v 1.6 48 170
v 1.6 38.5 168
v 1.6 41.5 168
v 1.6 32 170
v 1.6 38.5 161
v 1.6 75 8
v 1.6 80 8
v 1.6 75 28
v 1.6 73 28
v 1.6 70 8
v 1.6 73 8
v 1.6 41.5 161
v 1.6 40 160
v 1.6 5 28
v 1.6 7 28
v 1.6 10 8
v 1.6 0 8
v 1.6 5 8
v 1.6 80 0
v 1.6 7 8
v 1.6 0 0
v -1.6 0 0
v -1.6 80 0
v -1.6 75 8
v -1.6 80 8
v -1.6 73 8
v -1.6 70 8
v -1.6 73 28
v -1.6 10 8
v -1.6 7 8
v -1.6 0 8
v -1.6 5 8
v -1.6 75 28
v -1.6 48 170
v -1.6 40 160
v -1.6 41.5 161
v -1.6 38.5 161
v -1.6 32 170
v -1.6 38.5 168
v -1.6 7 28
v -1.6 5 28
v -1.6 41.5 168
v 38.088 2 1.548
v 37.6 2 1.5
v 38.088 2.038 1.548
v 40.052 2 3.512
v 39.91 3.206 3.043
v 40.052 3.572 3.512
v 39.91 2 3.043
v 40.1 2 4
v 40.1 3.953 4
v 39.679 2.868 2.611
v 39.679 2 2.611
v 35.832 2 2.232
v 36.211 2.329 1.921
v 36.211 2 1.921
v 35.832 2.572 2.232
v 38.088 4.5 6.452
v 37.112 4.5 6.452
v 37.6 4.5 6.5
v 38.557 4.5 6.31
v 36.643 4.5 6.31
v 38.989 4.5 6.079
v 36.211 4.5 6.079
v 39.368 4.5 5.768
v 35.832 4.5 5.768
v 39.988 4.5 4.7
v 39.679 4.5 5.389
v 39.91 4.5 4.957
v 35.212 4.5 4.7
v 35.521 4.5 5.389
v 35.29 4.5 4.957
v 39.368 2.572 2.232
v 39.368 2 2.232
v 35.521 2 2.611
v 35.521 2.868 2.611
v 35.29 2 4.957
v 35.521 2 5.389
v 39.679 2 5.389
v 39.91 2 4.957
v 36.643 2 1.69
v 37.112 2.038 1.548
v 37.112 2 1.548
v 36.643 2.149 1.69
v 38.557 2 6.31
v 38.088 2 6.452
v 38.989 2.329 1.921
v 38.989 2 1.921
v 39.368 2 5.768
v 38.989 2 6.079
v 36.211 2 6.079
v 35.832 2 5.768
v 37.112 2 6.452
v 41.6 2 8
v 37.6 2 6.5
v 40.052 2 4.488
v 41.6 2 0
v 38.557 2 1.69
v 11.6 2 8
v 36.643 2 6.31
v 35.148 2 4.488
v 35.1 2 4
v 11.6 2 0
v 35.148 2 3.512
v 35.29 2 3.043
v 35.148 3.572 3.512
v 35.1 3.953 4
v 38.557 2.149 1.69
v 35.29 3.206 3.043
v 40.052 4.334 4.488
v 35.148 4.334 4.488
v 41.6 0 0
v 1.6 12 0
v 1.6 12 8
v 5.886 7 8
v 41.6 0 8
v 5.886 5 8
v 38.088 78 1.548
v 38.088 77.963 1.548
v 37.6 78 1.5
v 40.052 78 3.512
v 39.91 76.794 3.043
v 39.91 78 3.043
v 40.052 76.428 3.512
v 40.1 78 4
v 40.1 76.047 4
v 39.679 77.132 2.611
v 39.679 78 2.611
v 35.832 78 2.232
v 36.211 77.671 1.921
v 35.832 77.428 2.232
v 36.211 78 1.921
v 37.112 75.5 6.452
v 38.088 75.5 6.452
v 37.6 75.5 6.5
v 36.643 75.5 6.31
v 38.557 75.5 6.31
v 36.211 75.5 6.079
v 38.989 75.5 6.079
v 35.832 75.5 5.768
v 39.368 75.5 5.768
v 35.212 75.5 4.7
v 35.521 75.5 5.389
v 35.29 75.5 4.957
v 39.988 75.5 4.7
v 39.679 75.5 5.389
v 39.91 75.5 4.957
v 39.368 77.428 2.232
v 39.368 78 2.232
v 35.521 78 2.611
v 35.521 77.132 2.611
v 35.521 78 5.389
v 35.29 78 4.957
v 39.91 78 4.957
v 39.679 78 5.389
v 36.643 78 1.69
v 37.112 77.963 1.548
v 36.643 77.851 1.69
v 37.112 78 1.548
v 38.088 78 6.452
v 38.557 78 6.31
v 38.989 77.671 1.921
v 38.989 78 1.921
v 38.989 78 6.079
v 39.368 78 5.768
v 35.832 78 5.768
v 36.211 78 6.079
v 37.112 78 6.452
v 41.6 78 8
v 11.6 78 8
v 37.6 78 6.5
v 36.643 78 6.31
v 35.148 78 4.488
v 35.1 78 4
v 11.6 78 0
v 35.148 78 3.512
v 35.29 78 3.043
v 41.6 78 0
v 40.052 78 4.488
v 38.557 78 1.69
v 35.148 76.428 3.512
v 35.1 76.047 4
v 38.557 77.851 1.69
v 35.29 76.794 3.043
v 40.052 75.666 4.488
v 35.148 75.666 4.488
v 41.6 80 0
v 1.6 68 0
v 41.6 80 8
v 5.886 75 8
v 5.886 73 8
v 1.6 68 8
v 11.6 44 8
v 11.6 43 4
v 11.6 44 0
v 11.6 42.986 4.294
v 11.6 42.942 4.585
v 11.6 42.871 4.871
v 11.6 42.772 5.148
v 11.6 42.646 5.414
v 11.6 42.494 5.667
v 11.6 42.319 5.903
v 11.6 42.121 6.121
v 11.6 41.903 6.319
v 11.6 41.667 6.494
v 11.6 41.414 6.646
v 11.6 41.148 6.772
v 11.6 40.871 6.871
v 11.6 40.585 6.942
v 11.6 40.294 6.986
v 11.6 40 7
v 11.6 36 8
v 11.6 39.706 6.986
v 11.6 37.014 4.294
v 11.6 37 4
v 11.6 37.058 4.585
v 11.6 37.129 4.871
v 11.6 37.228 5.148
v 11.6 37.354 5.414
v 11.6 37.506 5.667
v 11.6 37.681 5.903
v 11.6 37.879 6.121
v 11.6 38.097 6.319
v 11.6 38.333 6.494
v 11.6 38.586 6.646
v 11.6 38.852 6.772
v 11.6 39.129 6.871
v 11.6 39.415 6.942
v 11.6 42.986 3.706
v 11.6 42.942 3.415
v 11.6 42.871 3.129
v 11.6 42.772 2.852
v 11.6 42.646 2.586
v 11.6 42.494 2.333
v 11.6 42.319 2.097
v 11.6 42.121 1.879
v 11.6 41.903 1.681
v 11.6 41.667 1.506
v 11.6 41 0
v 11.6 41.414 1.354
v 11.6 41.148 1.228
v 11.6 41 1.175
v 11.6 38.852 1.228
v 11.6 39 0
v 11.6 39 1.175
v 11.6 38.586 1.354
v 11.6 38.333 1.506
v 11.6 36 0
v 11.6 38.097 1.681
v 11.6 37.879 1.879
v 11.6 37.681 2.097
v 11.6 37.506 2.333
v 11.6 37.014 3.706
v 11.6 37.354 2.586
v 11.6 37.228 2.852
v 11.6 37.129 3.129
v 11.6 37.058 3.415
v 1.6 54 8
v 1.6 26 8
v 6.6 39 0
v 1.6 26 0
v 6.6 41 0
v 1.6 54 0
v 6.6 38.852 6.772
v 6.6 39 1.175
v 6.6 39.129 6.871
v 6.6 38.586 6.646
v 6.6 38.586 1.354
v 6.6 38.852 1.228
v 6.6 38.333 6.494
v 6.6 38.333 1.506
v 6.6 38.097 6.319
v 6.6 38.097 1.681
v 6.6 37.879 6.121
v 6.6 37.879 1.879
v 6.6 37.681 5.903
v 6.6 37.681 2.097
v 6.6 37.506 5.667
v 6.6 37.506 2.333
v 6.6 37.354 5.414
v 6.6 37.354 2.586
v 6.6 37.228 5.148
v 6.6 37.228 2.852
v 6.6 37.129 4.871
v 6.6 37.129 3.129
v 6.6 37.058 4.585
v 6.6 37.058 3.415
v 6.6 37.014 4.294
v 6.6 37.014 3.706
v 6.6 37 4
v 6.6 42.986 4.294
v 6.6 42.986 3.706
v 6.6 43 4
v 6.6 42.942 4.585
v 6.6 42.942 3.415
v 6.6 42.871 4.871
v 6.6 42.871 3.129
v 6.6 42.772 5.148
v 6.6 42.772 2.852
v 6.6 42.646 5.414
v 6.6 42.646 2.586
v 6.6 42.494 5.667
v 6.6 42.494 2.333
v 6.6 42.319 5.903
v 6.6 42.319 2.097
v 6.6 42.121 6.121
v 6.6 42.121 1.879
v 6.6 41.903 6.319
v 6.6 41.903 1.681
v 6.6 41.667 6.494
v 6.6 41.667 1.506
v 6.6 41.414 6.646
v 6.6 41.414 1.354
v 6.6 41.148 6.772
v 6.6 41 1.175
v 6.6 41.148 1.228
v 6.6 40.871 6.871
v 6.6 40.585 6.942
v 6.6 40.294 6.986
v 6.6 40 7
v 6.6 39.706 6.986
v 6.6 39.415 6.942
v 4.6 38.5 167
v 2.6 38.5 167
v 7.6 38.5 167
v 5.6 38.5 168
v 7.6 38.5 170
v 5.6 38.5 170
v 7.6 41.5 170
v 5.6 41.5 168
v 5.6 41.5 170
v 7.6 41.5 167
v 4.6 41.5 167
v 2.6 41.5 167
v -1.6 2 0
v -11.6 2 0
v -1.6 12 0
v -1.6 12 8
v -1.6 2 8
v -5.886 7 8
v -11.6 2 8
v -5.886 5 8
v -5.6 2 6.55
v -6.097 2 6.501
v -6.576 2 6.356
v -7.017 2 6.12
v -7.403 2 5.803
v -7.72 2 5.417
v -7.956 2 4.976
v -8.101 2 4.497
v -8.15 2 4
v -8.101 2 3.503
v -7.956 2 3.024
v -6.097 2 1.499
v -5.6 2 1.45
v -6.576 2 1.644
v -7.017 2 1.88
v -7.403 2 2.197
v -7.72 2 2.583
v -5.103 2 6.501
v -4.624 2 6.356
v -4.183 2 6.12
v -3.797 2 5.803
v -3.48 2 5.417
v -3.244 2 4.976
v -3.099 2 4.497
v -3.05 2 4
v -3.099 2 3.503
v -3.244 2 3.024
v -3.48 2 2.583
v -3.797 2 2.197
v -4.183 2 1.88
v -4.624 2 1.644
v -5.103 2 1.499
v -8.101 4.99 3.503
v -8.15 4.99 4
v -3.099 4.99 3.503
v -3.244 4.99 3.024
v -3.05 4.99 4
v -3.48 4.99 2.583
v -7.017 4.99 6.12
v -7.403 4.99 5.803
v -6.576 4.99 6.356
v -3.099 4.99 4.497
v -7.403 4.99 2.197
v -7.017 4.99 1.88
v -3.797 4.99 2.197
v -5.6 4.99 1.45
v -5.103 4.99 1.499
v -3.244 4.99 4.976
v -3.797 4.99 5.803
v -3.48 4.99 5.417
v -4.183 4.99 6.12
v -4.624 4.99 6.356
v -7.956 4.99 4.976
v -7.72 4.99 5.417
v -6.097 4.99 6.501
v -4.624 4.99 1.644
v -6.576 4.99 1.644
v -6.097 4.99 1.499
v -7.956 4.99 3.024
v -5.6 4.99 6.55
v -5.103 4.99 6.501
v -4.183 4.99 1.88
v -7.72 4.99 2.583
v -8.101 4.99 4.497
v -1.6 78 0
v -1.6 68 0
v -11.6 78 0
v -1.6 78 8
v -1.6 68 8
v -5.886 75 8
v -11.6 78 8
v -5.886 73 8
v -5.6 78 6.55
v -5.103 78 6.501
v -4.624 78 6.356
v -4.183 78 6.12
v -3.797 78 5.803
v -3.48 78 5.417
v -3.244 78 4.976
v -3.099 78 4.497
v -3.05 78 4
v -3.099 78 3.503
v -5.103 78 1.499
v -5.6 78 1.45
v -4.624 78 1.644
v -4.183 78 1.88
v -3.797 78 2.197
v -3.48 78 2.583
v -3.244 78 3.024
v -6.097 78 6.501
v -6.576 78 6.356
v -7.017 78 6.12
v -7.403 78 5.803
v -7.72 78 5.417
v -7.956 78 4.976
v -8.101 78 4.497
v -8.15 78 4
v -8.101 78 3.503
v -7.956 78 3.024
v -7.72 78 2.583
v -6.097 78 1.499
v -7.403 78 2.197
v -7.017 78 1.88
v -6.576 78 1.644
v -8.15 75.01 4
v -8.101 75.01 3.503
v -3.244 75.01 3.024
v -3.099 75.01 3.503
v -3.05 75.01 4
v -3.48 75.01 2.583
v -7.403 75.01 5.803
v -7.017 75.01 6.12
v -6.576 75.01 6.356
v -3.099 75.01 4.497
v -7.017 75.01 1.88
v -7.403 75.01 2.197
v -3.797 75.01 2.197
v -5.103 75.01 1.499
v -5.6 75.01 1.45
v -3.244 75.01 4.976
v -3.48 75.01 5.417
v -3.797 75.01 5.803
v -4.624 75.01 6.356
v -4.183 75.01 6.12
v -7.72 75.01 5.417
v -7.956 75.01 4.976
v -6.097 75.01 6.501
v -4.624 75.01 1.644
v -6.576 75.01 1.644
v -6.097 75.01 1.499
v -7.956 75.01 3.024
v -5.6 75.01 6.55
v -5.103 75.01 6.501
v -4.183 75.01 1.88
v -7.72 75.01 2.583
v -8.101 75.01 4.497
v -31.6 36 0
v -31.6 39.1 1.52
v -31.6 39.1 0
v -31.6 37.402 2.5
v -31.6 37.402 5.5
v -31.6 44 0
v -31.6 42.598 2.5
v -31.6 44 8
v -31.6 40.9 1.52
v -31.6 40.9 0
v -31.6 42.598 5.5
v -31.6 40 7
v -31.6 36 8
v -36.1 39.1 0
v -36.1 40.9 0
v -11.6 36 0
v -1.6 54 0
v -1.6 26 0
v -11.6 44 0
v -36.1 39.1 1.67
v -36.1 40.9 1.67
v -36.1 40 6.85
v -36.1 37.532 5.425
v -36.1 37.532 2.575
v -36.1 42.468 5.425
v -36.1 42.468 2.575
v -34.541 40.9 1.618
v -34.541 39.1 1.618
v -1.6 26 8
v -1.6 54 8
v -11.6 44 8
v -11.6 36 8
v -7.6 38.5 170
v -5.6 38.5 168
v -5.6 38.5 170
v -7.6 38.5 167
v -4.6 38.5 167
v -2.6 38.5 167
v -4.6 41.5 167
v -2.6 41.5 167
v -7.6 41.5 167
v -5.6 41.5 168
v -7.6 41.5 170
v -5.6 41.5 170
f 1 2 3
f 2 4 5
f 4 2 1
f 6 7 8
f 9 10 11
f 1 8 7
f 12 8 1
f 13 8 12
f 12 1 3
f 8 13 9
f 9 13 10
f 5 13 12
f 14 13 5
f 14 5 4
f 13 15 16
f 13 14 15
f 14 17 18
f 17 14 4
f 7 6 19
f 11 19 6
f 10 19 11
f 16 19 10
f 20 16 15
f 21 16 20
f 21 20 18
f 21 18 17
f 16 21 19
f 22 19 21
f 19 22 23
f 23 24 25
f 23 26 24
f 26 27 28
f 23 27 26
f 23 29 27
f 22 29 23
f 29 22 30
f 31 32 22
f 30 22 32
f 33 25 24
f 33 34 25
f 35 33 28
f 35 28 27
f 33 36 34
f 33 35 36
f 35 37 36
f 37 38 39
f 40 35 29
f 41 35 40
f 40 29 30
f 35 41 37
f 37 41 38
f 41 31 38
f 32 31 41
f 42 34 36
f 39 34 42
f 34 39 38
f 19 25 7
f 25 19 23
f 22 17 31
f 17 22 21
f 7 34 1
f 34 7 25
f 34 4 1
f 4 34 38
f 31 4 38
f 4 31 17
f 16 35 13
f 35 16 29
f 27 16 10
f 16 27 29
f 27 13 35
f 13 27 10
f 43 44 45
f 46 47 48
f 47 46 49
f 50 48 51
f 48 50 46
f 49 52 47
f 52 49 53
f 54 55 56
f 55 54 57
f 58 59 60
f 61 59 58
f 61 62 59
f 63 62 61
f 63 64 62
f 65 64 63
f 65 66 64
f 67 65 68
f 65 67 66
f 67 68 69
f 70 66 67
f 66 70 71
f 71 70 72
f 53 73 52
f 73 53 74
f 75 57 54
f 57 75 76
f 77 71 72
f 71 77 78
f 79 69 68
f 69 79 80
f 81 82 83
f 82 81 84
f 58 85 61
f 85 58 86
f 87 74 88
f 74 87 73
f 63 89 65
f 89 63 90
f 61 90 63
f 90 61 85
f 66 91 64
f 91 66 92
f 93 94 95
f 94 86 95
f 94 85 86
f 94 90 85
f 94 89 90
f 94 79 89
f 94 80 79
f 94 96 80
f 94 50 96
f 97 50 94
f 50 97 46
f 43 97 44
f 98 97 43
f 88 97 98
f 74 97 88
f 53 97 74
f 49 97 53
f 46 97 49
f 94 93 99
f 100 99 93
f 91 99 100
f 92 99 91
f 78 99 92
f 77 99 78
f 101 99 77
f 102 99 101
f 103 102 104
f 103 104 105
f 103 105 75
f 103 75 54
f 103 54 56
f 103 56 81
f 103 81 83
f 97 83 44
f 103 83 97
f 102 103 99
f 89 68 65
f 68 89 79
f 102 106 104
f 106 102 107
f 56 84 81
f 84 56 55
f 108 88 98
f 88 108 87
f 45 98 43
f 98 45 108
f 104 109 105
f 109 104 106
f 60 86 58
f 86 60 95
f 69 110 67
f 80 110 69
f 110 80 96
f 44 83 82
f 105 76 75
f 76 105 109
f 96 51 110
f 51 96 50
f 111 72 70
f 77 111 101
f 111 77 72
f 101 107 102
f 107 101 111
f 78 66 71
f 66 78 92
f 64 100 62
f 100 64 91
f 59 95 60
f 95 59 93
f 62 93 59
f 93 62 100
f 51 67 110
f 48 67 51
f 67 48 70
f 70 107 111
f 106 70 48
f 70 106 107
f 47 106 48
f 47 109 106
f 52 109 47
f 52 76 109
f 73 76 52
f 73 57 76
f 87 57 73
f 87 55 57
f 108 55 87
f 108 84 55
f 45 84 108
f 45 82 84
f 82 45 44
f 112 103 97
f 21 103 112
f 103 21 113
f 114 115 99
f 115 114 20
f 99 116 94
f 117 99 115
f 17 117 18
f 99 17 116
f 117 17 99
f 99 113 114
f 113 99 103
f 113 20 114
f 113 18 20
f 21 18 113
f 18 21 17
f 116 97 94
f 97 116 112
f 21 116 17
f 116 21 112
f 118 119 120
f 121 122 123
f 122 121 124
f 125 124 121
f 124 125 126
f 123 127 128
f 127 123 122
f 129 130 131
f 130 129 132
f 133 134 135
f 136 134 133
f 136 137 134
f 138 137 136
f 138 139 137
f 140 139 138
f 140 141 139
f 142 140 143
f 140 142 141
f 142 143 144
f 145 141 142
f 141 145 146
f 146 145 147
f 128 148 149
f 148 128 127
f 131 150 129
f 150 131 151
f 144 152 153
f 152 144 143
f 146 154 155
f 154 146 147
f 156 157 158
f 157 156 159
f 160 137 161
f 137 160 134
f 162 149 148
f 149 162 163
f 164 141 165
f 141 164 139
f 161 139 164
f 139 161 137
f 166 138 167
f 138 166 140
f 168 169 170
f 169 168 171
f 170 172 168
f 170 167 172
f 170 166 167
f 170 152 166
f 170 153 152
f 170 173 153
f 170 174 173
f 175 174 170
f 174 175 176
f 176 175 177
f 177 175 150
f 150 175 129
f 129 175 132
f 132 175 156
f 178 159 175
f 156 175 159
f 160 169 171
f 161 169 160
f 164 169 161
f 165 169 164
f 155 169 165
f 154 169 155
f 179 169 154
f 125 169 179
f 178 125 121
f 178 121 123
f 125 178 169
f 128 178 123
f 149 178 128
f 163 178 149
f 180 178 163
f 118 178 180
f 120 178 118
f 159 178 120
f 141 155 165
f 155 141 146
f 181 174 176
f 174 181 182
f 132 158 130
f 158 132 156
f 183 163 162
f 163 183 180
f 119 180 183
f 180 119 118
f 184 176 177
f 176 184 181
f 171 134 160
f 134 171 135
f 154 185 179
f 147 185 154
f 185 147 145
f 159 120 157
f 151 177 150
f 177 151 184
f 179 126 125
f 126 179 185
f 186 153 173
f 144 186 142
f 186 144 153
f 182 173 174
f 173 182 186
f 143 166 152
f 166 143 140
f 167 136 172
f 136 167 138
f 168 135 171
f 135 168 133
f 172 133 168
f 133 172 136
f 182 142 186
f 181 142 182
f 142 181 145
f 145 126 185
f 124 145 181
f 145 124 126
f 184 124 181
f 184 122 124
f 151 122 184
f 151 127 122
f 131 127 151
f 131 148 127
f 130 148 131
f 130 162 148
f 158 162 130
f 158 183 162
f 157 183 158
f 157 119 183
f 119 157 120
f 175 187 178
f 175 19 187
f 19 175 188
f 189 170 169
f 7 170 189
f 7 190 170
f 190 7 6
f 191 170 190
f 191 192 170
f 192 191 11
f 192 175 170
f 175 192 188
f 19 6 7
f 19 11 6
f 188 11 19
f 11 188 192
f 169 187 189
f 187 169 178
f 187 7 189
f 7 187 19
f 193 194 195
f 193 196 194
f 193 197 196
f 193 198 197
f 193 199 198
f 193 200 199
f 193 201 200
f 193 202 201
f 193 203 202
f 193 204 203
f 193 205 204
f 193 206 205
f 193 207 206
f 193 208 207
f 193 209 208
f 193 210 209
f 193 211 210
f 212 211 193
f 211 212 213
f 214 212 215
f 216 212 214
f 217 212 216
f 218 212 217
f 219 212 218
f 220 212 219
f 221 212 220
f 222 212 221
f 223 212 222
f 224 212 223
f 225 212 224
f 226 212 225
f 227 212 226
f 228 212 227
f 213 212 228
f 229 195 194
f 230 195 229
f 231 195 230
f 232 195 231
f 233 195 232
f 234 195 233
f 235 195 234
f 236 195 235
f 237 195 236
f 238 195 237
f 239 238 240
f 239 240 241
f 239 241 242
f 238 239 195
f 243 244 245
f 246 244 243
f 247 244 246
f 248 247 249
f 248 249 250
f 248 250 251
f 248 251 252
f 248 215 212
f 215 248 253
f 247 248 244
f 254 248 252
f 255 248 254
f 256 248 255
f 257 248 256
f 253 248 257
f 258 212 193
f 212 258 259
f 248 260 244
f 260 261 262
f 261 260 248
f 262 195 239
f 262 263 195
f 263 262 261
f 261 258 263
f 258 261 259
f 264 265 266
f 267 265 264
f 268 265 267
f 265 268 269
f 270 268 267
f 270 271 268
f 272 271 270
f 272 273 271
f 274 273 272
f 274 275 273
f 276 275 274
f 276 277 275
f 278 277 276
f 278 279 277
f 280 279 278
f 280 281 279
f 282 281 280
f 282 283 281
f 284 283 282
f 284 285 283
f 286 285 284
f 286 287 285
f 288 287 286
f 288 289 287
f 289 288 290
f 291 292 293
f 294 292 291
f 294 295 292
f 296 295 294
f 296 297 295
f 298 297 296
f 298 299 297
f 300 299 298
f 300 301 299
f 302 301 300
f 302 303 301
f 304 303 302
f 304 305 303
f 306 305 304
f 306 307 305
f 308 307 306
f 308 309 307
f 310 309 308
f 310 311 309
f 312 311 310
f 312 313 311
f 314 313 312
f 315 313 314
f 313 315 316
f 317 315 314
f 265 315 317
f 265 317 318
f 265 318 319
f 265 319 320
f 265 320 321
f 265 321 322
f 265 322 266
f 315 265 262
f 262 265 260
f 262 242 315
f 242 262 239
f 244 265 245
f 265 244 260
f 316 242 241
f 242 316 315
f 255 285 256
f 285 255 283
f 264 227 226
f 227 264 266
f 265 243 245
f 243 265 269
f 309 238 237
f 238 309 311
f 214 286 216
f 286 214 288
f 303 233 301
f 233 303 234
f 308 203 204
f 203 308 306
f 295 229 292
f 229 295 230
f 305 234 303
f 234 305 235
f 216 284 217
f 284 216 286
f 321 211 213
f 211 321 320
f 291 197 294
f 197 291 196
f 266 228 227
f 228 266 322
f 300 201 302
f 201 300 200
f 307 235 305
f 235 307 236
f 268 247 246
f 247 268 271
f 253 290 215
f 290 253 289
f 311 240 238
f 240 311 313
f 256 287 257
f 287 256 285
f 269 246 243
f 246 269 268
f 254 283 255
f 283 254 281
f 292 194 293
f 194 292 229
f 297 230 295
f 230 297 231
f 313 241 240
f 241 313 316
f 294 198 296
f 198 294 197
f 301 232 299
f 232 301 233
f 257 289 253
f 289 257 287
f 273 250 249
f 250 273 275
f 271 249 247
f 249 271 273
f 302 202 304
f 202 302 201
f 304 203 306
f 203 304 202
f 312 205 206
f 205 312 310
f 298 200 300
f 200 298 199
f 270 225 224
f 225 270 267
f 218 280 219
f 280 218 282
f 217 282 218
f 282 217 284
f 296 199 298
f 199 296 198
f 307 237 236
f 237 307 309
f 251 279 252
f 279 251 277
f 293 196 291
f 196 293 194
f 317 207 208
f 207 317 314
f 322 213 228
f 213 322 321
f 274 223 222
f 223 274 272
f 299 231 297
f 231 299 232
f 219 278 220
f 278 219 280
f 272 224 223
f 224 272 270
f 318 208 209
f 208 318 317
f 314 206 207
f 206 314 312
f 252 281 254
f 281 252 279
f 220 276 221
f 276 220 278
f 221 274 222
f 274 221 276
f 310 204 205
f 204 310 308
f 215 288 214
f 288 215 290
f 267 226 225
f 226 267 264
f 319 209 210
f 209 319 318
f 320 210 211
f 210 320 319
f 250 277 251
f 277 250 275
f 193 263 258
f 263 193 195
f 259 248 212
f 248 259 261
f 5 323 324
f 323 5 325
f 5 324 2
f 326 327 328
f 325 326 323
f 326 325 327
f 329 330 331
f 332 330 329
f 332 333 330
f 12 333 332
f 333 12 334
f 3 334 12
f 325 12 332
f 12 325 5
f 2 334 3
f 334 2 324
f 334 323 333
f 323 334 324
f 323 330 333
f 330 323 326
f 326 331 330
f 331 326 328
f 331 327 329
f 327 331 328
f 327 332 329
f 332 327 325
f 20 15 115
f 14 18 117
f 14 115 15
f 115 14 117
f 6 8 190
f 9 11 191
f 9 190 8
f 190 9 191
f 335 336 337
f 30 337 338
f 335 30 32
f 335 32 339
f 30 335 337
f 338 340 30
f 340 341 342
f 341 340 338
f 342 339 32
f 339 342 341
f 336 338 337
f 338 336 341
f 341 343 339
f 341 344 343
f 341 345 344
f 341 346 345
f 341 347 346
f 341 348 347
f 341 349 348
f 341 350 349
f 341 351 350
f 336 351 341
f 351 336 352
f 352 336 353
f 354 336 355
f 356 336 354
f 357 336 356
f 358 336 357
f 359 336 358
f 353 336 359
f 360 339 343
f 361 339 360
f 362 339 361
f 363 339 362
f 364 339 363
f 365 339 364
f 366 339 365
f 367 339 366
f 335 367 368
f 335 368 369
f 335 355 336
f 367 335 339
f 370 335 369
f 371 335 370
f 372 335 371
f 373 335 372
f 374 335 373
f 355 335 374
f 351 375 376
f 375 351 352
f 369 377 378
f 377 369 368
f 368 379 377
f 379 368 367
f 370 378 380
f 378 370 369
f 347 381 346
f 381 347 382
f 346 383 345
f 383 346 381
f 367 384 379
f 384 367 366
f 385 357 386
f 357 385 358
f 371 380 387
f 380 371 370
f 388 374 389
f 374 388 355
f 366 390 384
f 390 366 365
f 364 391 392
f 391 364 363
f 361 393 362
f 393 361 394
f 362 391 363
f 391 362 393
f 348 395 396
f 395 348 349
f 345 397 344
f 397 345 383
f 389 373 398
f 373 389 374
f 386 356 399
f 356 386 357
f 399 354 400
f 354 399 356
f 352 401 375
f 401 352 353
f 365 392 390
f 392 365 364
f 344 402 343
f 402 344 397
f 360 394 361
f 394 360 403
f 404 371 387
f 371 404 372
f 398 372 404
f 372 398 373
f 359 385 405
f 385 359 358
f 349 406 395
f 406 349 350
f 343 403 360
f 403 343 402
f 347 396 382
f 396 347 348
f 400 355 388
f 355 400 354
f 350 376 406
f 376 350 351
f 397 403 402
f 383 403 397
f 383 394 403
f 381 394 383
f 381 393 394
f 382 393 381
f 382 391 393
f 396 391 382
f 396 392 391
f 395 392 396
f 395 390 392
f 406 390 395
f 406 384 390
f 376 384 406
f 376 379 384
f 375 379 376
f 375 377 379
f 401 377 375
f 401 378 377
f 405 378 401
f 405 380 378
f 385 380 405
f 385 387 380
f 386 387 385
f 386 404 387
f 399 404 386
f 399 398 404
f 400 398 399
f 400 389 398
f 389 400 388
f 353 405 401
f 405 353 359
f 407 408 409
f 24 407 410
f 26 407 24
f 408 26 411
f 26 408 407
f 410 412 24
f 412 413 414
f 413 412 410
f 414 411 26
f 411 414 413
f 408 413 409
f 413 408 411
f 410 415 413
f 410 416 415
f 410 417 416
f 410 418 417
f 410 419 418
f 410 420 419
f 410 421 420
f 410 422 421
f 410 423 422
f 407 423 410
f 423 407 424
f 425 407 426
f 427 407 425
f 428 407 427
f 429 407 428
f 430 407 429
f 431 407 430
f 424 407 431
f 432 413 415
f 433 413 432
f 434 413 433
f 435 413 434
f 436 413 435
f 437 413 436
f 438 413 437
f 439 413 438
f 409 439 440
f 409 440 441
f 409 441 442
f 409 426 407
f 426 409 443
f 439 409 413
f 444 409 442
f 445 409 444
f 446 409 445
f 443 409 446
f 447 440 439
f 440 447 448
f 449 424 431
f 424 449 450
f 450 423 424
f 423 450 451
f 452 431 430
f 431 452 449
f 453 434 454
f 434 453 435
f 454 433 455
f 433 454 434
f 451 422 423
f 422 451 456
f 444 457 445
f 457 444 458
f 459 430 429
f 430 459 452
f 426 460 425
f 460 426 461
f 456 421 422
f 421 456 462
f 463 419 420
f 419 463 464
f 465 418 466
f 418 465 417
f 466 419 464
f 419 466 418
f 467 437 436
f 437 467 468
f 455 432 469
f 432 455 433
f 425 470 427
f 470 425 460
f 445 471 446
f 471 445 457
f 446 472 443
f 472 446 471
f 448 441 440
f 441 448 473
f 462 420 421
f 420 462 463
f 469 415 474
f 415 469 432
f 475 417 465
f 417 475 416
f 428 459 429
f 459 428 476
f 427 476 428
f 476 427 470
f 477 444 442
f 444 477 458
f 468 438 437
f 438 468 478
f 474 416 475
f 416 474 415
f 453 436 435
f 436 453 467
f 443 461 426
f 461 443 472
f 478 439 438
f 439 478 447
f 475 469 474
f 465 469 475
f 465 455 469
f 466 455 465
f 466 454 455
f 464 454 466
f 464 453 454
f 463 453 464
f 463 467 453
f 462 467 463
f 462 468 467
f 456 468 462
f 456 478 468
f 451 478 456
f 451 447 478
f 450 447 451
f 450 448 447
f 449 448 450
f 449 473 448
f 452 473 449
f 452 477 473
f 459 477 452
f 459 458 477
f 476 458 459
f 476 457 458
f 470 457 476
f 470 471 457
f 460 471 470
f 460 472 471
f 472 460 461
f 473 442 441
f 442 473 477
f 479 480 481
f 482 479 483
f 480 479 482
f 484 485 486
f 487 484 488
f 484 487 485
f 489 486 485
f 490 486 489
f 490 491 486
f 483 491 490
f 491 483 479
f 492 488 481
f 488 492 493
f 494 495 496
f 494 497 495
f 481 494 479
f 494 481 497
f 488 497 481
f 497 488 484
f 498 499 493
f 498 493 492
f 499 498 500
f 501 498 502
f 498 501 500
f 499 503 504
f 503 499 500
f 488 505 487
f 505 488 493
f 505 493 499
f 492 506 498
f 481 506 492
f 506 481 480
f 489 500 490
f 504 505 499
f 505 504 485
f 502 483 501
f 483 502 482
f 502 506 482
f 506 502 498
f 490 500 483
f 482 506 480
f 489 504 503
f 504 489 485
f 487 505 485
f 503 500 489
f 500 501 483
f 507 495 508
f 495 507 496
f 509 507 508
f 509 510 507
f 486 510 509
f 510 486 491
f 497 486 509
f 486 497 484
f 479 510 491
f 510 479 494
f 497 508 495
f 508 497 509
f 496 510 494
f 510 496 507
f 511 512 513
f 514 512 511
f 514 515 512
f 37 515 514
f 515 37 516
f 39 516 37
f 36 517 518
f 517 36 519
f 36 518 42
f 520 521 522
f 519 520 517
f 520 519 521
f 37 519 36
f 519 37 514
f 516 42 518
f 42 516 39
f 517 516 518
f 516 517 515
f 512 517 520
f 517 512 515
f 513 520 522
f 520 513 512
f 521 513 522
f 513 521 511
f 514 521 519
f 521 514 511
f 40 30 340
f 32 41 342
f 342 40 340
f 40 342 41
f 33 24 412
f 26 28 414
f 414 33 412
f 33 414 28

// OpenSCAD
// file: ffp2_drying_rack.scad
/*

  ffp2_drying_rack.scad

  (c) olikraus@gmail.com

  This work is licensed under the Creative Commons Attribution-NonCommercial-ShareAlike 4.0 International License. 
  To view a copy of this license, visit http://creativecommons.org/licenses/by-nc-sa/4.0/.
    
*/


$fn=32;

wall_thickness=3.2;
wall_height=170;
wall_width=80;


clip_len=40;
clip_height=8;
clip_thickness=2;
clip_diameter = clip_height-3;
clip_cylinder_len = 2.5;

/* min 8 for clip_cyllinder_len=2.5 
    also depends on clip_diameter and in turn on clip_height
    clip_triangle_len must be also larger than press_fit_len
*/
clip_triangle_len = 10;

/* clip hole diameter extention, so that the clip fits better */
clip_diameter_gap = 0.1; 


hook_len=6;
hook_nose_height=3;
hook_nose_width=2;
hook_thickness=3;

press_fit_len=5;
press_fit_diameter=clip_height-2;


module triangle_block() {
    linear_extrude(height=clip_height)
    polygon(points=[[0,0],[clip_triangle_len,0],[0,clip_triangle_len]]);
}

module wall_support() {
  translate([0,clip_thickness,0])
  rotate([90,0,0])
  linear_extrude(height=clip_thickness)
  polygon(points=[[0,0],[clip_triangle_len*3/7,0],[0,clip_triangle_len*2]]);
}

module clip_m() {
    union() {
        translate([0,clip_thickness,0])
        triangle_block();
        cube([clip_len, clip_thickness,clip_height]);
        translate([clip_len-(clip_height)/2,clip_thickness,clip_height/2])
        rotate([-90,0,0])
        difference() {
            cylinder(d=clip_diameter, h=clip_cylinder_len);
            translate([0,(clip_diameter)/2,0])
            rotate([-38,0,0])
            translate([-clip_height/2, -clip_height, 0])
            cube([clip_height,clip_height,clip_height]);
        }
    }
}


module clip_f() {
    translate([0,clip_thickness,0])
    difference() {
        rotate([0,0,90])
        triangle_block();
        translate([-clip_height/2,-0.01,clip_height/2])
        rotate([-90,0,0])
        cylinder(d=clip_diameter+clip_diameter_gap, 
                h=clip_cylinder_len+0.5);
    }
}

module hook() {
    rotate([-90,0,0])
    linear_extrude(height=hook_thickness, center=true)
    polygon(points=[
        [0,-1],
        [1,0],
        [hook_len-hook_nose_width-1,0],
        [hook_len-hook_nose_width,-1],
        [hook_len-hook_nose_width,-hook_nose_height],
        [hook_len,-hook_nose_height],
        [hook_len,0],
        [0,hook_len]]);
}

module press_fit_f() {
    difference() {
        translate([0,-clip_height/2,0])
        cube([clip_triangle_len, clip_height, clip_height]);
        
        translate([clip_triangle_len-press_fit_len,
            -press_fit_diameter/3/2,
            -0.01])
        cube([press_fit_len+0.01,press_fit_diameter/3,clip_height/2]);
        

        translate([clip_triangle_len-press_fit_len,0,clip_height/2])
        rotate([0,90,0])
        cylinder(d=press_fit_diameter,h=press_fit_len+0.01, $fn=64);
    }

    translate([0,clip_height/2,0])
    triangle_block();

    mirror([0,1,0])
    translate([0,clip_height/2,0])
    triangle_block();
}

module press_fit_m() {

    translate([-clip_len+clip_triangle_len,0,0])
    union() {
        translate([0.5-press_fit_len,-(press_fit_diameter/3-0.2)/2,0])
        cube([press_fit_len-0.5,press_fit_diameter/3-0.2,clip_height/2]);
        
        translate([0,0,clip_height/2])
        rotate([0,-90,0])
        cylinder(
            d1=press_fit_diameter, 
            d2=press_fit_diameter*0.95, 
            h=press_fit_len-0.5, $fn=6);
        
        translate([0,-clip_height/2,0])
        cube([clip_len-clip_triangle_len, clip_height, clip_height]);
        
        translate([clip_len-clip_triangle_len,clip_height/2,0])
        mirror([1,0,0])
        triangle_block();

        translate([clip_len-clip_triangle_len,-clip_height/2,0])
        rotate([0,0,180])
        triangle_block();
        
    }
}

module pure_wall() {
    difference() {
        union() {
            translate([-wall_thickness/2,0,0])
            cube([wall_thickness, wall_width, clip_height]);

            translate([wall_thickness/2,0,clip_height])
            rotate([0,-90,0])
            linear_extrude(height=wall_thickness)
            polygon(points=[
                [0,0],
                [0,wall_width],
                [wall_height-clip_height,wall_width/2+clip_height],
                [wall_height-clip_height,wall_width/2-clip_height]
            ]);


            
        }

        translate([wall_thickness,0,clip_height])
        rotate([0,-90,0])
        linear_extrude(height=wall_thickness*2)
        polygon(points=[
        [0,clip_triangle_len],
        [0,wall_width-clip_triangle_len],
        [wall_height-clip_height-clip_triangle_len,wall_width/2]
        ]);
    }
    
}


module wall(is_left=1, is_right=1) {
    union() {
        //translate([-wall_thickness/2,0,0])
        //cube([wall_thickness, wall_width, wall_height]);
        pure_wall();
        if ( is_right) {
            translate([wall_thickness/2,0,0])
            clip_m();

            translate([wall_thickness/2,wall_width,0])
            mirror([0,1,0])
            clip_m();

            translate([wall_thickness/2,wall_width/2,0])
            press_fit_f();
            
            translate([wall_thickness/2,
                    wall_width/2,
                    wall_height-hook_nose_height])            
            hook();
	    
            translate([wall_thickness/2,clip_thickness*2.5,clip_height])
	    wall_support();

            translate([wall_thickness/2,wall_width-clip_thickness*3.5,clip_height])
	    wall_support();

        }

        if ( is_left) {

            translate([-wall_thickness/2,0,0])
            clip_f();

            translate([-wall_thickness/2,wall_width,0])
            mirror([0,1,0])
            clip_f();
            
            translate([-wall_thickness/2,wall_width/2,0])
            press_fit_m();
            
            mirror([1,0,0])
            translate([wall_thickness/2,
                    wall_width/2,
                    wall_height-hook_nose_height])
            hook();

            mirror([1,0,0])
            translate([wall_thickness/2,clip_thickness*2.5,clip_height])
	    wall_support();

            mirror([1,0,0])
            translate([wall_thickness/2,wall_width-clip_thickness*3.5,clip_height])
	    wall_support();

        }
    }
}


//wall(1,1);
// main file
/*

  middle_wall.scad

  (c) olikraus@gmail.com

  This work is licensed under the Creative Commons Attribution-NonCommercial-ShareAlike 4.0 International License. 
  To view a copy of this license, visit http://creativecommons.org/licenses/by-nc-sa/4.0/.
    
*/
include <ffp2_drying_rack.scad>

wall(1,1);
